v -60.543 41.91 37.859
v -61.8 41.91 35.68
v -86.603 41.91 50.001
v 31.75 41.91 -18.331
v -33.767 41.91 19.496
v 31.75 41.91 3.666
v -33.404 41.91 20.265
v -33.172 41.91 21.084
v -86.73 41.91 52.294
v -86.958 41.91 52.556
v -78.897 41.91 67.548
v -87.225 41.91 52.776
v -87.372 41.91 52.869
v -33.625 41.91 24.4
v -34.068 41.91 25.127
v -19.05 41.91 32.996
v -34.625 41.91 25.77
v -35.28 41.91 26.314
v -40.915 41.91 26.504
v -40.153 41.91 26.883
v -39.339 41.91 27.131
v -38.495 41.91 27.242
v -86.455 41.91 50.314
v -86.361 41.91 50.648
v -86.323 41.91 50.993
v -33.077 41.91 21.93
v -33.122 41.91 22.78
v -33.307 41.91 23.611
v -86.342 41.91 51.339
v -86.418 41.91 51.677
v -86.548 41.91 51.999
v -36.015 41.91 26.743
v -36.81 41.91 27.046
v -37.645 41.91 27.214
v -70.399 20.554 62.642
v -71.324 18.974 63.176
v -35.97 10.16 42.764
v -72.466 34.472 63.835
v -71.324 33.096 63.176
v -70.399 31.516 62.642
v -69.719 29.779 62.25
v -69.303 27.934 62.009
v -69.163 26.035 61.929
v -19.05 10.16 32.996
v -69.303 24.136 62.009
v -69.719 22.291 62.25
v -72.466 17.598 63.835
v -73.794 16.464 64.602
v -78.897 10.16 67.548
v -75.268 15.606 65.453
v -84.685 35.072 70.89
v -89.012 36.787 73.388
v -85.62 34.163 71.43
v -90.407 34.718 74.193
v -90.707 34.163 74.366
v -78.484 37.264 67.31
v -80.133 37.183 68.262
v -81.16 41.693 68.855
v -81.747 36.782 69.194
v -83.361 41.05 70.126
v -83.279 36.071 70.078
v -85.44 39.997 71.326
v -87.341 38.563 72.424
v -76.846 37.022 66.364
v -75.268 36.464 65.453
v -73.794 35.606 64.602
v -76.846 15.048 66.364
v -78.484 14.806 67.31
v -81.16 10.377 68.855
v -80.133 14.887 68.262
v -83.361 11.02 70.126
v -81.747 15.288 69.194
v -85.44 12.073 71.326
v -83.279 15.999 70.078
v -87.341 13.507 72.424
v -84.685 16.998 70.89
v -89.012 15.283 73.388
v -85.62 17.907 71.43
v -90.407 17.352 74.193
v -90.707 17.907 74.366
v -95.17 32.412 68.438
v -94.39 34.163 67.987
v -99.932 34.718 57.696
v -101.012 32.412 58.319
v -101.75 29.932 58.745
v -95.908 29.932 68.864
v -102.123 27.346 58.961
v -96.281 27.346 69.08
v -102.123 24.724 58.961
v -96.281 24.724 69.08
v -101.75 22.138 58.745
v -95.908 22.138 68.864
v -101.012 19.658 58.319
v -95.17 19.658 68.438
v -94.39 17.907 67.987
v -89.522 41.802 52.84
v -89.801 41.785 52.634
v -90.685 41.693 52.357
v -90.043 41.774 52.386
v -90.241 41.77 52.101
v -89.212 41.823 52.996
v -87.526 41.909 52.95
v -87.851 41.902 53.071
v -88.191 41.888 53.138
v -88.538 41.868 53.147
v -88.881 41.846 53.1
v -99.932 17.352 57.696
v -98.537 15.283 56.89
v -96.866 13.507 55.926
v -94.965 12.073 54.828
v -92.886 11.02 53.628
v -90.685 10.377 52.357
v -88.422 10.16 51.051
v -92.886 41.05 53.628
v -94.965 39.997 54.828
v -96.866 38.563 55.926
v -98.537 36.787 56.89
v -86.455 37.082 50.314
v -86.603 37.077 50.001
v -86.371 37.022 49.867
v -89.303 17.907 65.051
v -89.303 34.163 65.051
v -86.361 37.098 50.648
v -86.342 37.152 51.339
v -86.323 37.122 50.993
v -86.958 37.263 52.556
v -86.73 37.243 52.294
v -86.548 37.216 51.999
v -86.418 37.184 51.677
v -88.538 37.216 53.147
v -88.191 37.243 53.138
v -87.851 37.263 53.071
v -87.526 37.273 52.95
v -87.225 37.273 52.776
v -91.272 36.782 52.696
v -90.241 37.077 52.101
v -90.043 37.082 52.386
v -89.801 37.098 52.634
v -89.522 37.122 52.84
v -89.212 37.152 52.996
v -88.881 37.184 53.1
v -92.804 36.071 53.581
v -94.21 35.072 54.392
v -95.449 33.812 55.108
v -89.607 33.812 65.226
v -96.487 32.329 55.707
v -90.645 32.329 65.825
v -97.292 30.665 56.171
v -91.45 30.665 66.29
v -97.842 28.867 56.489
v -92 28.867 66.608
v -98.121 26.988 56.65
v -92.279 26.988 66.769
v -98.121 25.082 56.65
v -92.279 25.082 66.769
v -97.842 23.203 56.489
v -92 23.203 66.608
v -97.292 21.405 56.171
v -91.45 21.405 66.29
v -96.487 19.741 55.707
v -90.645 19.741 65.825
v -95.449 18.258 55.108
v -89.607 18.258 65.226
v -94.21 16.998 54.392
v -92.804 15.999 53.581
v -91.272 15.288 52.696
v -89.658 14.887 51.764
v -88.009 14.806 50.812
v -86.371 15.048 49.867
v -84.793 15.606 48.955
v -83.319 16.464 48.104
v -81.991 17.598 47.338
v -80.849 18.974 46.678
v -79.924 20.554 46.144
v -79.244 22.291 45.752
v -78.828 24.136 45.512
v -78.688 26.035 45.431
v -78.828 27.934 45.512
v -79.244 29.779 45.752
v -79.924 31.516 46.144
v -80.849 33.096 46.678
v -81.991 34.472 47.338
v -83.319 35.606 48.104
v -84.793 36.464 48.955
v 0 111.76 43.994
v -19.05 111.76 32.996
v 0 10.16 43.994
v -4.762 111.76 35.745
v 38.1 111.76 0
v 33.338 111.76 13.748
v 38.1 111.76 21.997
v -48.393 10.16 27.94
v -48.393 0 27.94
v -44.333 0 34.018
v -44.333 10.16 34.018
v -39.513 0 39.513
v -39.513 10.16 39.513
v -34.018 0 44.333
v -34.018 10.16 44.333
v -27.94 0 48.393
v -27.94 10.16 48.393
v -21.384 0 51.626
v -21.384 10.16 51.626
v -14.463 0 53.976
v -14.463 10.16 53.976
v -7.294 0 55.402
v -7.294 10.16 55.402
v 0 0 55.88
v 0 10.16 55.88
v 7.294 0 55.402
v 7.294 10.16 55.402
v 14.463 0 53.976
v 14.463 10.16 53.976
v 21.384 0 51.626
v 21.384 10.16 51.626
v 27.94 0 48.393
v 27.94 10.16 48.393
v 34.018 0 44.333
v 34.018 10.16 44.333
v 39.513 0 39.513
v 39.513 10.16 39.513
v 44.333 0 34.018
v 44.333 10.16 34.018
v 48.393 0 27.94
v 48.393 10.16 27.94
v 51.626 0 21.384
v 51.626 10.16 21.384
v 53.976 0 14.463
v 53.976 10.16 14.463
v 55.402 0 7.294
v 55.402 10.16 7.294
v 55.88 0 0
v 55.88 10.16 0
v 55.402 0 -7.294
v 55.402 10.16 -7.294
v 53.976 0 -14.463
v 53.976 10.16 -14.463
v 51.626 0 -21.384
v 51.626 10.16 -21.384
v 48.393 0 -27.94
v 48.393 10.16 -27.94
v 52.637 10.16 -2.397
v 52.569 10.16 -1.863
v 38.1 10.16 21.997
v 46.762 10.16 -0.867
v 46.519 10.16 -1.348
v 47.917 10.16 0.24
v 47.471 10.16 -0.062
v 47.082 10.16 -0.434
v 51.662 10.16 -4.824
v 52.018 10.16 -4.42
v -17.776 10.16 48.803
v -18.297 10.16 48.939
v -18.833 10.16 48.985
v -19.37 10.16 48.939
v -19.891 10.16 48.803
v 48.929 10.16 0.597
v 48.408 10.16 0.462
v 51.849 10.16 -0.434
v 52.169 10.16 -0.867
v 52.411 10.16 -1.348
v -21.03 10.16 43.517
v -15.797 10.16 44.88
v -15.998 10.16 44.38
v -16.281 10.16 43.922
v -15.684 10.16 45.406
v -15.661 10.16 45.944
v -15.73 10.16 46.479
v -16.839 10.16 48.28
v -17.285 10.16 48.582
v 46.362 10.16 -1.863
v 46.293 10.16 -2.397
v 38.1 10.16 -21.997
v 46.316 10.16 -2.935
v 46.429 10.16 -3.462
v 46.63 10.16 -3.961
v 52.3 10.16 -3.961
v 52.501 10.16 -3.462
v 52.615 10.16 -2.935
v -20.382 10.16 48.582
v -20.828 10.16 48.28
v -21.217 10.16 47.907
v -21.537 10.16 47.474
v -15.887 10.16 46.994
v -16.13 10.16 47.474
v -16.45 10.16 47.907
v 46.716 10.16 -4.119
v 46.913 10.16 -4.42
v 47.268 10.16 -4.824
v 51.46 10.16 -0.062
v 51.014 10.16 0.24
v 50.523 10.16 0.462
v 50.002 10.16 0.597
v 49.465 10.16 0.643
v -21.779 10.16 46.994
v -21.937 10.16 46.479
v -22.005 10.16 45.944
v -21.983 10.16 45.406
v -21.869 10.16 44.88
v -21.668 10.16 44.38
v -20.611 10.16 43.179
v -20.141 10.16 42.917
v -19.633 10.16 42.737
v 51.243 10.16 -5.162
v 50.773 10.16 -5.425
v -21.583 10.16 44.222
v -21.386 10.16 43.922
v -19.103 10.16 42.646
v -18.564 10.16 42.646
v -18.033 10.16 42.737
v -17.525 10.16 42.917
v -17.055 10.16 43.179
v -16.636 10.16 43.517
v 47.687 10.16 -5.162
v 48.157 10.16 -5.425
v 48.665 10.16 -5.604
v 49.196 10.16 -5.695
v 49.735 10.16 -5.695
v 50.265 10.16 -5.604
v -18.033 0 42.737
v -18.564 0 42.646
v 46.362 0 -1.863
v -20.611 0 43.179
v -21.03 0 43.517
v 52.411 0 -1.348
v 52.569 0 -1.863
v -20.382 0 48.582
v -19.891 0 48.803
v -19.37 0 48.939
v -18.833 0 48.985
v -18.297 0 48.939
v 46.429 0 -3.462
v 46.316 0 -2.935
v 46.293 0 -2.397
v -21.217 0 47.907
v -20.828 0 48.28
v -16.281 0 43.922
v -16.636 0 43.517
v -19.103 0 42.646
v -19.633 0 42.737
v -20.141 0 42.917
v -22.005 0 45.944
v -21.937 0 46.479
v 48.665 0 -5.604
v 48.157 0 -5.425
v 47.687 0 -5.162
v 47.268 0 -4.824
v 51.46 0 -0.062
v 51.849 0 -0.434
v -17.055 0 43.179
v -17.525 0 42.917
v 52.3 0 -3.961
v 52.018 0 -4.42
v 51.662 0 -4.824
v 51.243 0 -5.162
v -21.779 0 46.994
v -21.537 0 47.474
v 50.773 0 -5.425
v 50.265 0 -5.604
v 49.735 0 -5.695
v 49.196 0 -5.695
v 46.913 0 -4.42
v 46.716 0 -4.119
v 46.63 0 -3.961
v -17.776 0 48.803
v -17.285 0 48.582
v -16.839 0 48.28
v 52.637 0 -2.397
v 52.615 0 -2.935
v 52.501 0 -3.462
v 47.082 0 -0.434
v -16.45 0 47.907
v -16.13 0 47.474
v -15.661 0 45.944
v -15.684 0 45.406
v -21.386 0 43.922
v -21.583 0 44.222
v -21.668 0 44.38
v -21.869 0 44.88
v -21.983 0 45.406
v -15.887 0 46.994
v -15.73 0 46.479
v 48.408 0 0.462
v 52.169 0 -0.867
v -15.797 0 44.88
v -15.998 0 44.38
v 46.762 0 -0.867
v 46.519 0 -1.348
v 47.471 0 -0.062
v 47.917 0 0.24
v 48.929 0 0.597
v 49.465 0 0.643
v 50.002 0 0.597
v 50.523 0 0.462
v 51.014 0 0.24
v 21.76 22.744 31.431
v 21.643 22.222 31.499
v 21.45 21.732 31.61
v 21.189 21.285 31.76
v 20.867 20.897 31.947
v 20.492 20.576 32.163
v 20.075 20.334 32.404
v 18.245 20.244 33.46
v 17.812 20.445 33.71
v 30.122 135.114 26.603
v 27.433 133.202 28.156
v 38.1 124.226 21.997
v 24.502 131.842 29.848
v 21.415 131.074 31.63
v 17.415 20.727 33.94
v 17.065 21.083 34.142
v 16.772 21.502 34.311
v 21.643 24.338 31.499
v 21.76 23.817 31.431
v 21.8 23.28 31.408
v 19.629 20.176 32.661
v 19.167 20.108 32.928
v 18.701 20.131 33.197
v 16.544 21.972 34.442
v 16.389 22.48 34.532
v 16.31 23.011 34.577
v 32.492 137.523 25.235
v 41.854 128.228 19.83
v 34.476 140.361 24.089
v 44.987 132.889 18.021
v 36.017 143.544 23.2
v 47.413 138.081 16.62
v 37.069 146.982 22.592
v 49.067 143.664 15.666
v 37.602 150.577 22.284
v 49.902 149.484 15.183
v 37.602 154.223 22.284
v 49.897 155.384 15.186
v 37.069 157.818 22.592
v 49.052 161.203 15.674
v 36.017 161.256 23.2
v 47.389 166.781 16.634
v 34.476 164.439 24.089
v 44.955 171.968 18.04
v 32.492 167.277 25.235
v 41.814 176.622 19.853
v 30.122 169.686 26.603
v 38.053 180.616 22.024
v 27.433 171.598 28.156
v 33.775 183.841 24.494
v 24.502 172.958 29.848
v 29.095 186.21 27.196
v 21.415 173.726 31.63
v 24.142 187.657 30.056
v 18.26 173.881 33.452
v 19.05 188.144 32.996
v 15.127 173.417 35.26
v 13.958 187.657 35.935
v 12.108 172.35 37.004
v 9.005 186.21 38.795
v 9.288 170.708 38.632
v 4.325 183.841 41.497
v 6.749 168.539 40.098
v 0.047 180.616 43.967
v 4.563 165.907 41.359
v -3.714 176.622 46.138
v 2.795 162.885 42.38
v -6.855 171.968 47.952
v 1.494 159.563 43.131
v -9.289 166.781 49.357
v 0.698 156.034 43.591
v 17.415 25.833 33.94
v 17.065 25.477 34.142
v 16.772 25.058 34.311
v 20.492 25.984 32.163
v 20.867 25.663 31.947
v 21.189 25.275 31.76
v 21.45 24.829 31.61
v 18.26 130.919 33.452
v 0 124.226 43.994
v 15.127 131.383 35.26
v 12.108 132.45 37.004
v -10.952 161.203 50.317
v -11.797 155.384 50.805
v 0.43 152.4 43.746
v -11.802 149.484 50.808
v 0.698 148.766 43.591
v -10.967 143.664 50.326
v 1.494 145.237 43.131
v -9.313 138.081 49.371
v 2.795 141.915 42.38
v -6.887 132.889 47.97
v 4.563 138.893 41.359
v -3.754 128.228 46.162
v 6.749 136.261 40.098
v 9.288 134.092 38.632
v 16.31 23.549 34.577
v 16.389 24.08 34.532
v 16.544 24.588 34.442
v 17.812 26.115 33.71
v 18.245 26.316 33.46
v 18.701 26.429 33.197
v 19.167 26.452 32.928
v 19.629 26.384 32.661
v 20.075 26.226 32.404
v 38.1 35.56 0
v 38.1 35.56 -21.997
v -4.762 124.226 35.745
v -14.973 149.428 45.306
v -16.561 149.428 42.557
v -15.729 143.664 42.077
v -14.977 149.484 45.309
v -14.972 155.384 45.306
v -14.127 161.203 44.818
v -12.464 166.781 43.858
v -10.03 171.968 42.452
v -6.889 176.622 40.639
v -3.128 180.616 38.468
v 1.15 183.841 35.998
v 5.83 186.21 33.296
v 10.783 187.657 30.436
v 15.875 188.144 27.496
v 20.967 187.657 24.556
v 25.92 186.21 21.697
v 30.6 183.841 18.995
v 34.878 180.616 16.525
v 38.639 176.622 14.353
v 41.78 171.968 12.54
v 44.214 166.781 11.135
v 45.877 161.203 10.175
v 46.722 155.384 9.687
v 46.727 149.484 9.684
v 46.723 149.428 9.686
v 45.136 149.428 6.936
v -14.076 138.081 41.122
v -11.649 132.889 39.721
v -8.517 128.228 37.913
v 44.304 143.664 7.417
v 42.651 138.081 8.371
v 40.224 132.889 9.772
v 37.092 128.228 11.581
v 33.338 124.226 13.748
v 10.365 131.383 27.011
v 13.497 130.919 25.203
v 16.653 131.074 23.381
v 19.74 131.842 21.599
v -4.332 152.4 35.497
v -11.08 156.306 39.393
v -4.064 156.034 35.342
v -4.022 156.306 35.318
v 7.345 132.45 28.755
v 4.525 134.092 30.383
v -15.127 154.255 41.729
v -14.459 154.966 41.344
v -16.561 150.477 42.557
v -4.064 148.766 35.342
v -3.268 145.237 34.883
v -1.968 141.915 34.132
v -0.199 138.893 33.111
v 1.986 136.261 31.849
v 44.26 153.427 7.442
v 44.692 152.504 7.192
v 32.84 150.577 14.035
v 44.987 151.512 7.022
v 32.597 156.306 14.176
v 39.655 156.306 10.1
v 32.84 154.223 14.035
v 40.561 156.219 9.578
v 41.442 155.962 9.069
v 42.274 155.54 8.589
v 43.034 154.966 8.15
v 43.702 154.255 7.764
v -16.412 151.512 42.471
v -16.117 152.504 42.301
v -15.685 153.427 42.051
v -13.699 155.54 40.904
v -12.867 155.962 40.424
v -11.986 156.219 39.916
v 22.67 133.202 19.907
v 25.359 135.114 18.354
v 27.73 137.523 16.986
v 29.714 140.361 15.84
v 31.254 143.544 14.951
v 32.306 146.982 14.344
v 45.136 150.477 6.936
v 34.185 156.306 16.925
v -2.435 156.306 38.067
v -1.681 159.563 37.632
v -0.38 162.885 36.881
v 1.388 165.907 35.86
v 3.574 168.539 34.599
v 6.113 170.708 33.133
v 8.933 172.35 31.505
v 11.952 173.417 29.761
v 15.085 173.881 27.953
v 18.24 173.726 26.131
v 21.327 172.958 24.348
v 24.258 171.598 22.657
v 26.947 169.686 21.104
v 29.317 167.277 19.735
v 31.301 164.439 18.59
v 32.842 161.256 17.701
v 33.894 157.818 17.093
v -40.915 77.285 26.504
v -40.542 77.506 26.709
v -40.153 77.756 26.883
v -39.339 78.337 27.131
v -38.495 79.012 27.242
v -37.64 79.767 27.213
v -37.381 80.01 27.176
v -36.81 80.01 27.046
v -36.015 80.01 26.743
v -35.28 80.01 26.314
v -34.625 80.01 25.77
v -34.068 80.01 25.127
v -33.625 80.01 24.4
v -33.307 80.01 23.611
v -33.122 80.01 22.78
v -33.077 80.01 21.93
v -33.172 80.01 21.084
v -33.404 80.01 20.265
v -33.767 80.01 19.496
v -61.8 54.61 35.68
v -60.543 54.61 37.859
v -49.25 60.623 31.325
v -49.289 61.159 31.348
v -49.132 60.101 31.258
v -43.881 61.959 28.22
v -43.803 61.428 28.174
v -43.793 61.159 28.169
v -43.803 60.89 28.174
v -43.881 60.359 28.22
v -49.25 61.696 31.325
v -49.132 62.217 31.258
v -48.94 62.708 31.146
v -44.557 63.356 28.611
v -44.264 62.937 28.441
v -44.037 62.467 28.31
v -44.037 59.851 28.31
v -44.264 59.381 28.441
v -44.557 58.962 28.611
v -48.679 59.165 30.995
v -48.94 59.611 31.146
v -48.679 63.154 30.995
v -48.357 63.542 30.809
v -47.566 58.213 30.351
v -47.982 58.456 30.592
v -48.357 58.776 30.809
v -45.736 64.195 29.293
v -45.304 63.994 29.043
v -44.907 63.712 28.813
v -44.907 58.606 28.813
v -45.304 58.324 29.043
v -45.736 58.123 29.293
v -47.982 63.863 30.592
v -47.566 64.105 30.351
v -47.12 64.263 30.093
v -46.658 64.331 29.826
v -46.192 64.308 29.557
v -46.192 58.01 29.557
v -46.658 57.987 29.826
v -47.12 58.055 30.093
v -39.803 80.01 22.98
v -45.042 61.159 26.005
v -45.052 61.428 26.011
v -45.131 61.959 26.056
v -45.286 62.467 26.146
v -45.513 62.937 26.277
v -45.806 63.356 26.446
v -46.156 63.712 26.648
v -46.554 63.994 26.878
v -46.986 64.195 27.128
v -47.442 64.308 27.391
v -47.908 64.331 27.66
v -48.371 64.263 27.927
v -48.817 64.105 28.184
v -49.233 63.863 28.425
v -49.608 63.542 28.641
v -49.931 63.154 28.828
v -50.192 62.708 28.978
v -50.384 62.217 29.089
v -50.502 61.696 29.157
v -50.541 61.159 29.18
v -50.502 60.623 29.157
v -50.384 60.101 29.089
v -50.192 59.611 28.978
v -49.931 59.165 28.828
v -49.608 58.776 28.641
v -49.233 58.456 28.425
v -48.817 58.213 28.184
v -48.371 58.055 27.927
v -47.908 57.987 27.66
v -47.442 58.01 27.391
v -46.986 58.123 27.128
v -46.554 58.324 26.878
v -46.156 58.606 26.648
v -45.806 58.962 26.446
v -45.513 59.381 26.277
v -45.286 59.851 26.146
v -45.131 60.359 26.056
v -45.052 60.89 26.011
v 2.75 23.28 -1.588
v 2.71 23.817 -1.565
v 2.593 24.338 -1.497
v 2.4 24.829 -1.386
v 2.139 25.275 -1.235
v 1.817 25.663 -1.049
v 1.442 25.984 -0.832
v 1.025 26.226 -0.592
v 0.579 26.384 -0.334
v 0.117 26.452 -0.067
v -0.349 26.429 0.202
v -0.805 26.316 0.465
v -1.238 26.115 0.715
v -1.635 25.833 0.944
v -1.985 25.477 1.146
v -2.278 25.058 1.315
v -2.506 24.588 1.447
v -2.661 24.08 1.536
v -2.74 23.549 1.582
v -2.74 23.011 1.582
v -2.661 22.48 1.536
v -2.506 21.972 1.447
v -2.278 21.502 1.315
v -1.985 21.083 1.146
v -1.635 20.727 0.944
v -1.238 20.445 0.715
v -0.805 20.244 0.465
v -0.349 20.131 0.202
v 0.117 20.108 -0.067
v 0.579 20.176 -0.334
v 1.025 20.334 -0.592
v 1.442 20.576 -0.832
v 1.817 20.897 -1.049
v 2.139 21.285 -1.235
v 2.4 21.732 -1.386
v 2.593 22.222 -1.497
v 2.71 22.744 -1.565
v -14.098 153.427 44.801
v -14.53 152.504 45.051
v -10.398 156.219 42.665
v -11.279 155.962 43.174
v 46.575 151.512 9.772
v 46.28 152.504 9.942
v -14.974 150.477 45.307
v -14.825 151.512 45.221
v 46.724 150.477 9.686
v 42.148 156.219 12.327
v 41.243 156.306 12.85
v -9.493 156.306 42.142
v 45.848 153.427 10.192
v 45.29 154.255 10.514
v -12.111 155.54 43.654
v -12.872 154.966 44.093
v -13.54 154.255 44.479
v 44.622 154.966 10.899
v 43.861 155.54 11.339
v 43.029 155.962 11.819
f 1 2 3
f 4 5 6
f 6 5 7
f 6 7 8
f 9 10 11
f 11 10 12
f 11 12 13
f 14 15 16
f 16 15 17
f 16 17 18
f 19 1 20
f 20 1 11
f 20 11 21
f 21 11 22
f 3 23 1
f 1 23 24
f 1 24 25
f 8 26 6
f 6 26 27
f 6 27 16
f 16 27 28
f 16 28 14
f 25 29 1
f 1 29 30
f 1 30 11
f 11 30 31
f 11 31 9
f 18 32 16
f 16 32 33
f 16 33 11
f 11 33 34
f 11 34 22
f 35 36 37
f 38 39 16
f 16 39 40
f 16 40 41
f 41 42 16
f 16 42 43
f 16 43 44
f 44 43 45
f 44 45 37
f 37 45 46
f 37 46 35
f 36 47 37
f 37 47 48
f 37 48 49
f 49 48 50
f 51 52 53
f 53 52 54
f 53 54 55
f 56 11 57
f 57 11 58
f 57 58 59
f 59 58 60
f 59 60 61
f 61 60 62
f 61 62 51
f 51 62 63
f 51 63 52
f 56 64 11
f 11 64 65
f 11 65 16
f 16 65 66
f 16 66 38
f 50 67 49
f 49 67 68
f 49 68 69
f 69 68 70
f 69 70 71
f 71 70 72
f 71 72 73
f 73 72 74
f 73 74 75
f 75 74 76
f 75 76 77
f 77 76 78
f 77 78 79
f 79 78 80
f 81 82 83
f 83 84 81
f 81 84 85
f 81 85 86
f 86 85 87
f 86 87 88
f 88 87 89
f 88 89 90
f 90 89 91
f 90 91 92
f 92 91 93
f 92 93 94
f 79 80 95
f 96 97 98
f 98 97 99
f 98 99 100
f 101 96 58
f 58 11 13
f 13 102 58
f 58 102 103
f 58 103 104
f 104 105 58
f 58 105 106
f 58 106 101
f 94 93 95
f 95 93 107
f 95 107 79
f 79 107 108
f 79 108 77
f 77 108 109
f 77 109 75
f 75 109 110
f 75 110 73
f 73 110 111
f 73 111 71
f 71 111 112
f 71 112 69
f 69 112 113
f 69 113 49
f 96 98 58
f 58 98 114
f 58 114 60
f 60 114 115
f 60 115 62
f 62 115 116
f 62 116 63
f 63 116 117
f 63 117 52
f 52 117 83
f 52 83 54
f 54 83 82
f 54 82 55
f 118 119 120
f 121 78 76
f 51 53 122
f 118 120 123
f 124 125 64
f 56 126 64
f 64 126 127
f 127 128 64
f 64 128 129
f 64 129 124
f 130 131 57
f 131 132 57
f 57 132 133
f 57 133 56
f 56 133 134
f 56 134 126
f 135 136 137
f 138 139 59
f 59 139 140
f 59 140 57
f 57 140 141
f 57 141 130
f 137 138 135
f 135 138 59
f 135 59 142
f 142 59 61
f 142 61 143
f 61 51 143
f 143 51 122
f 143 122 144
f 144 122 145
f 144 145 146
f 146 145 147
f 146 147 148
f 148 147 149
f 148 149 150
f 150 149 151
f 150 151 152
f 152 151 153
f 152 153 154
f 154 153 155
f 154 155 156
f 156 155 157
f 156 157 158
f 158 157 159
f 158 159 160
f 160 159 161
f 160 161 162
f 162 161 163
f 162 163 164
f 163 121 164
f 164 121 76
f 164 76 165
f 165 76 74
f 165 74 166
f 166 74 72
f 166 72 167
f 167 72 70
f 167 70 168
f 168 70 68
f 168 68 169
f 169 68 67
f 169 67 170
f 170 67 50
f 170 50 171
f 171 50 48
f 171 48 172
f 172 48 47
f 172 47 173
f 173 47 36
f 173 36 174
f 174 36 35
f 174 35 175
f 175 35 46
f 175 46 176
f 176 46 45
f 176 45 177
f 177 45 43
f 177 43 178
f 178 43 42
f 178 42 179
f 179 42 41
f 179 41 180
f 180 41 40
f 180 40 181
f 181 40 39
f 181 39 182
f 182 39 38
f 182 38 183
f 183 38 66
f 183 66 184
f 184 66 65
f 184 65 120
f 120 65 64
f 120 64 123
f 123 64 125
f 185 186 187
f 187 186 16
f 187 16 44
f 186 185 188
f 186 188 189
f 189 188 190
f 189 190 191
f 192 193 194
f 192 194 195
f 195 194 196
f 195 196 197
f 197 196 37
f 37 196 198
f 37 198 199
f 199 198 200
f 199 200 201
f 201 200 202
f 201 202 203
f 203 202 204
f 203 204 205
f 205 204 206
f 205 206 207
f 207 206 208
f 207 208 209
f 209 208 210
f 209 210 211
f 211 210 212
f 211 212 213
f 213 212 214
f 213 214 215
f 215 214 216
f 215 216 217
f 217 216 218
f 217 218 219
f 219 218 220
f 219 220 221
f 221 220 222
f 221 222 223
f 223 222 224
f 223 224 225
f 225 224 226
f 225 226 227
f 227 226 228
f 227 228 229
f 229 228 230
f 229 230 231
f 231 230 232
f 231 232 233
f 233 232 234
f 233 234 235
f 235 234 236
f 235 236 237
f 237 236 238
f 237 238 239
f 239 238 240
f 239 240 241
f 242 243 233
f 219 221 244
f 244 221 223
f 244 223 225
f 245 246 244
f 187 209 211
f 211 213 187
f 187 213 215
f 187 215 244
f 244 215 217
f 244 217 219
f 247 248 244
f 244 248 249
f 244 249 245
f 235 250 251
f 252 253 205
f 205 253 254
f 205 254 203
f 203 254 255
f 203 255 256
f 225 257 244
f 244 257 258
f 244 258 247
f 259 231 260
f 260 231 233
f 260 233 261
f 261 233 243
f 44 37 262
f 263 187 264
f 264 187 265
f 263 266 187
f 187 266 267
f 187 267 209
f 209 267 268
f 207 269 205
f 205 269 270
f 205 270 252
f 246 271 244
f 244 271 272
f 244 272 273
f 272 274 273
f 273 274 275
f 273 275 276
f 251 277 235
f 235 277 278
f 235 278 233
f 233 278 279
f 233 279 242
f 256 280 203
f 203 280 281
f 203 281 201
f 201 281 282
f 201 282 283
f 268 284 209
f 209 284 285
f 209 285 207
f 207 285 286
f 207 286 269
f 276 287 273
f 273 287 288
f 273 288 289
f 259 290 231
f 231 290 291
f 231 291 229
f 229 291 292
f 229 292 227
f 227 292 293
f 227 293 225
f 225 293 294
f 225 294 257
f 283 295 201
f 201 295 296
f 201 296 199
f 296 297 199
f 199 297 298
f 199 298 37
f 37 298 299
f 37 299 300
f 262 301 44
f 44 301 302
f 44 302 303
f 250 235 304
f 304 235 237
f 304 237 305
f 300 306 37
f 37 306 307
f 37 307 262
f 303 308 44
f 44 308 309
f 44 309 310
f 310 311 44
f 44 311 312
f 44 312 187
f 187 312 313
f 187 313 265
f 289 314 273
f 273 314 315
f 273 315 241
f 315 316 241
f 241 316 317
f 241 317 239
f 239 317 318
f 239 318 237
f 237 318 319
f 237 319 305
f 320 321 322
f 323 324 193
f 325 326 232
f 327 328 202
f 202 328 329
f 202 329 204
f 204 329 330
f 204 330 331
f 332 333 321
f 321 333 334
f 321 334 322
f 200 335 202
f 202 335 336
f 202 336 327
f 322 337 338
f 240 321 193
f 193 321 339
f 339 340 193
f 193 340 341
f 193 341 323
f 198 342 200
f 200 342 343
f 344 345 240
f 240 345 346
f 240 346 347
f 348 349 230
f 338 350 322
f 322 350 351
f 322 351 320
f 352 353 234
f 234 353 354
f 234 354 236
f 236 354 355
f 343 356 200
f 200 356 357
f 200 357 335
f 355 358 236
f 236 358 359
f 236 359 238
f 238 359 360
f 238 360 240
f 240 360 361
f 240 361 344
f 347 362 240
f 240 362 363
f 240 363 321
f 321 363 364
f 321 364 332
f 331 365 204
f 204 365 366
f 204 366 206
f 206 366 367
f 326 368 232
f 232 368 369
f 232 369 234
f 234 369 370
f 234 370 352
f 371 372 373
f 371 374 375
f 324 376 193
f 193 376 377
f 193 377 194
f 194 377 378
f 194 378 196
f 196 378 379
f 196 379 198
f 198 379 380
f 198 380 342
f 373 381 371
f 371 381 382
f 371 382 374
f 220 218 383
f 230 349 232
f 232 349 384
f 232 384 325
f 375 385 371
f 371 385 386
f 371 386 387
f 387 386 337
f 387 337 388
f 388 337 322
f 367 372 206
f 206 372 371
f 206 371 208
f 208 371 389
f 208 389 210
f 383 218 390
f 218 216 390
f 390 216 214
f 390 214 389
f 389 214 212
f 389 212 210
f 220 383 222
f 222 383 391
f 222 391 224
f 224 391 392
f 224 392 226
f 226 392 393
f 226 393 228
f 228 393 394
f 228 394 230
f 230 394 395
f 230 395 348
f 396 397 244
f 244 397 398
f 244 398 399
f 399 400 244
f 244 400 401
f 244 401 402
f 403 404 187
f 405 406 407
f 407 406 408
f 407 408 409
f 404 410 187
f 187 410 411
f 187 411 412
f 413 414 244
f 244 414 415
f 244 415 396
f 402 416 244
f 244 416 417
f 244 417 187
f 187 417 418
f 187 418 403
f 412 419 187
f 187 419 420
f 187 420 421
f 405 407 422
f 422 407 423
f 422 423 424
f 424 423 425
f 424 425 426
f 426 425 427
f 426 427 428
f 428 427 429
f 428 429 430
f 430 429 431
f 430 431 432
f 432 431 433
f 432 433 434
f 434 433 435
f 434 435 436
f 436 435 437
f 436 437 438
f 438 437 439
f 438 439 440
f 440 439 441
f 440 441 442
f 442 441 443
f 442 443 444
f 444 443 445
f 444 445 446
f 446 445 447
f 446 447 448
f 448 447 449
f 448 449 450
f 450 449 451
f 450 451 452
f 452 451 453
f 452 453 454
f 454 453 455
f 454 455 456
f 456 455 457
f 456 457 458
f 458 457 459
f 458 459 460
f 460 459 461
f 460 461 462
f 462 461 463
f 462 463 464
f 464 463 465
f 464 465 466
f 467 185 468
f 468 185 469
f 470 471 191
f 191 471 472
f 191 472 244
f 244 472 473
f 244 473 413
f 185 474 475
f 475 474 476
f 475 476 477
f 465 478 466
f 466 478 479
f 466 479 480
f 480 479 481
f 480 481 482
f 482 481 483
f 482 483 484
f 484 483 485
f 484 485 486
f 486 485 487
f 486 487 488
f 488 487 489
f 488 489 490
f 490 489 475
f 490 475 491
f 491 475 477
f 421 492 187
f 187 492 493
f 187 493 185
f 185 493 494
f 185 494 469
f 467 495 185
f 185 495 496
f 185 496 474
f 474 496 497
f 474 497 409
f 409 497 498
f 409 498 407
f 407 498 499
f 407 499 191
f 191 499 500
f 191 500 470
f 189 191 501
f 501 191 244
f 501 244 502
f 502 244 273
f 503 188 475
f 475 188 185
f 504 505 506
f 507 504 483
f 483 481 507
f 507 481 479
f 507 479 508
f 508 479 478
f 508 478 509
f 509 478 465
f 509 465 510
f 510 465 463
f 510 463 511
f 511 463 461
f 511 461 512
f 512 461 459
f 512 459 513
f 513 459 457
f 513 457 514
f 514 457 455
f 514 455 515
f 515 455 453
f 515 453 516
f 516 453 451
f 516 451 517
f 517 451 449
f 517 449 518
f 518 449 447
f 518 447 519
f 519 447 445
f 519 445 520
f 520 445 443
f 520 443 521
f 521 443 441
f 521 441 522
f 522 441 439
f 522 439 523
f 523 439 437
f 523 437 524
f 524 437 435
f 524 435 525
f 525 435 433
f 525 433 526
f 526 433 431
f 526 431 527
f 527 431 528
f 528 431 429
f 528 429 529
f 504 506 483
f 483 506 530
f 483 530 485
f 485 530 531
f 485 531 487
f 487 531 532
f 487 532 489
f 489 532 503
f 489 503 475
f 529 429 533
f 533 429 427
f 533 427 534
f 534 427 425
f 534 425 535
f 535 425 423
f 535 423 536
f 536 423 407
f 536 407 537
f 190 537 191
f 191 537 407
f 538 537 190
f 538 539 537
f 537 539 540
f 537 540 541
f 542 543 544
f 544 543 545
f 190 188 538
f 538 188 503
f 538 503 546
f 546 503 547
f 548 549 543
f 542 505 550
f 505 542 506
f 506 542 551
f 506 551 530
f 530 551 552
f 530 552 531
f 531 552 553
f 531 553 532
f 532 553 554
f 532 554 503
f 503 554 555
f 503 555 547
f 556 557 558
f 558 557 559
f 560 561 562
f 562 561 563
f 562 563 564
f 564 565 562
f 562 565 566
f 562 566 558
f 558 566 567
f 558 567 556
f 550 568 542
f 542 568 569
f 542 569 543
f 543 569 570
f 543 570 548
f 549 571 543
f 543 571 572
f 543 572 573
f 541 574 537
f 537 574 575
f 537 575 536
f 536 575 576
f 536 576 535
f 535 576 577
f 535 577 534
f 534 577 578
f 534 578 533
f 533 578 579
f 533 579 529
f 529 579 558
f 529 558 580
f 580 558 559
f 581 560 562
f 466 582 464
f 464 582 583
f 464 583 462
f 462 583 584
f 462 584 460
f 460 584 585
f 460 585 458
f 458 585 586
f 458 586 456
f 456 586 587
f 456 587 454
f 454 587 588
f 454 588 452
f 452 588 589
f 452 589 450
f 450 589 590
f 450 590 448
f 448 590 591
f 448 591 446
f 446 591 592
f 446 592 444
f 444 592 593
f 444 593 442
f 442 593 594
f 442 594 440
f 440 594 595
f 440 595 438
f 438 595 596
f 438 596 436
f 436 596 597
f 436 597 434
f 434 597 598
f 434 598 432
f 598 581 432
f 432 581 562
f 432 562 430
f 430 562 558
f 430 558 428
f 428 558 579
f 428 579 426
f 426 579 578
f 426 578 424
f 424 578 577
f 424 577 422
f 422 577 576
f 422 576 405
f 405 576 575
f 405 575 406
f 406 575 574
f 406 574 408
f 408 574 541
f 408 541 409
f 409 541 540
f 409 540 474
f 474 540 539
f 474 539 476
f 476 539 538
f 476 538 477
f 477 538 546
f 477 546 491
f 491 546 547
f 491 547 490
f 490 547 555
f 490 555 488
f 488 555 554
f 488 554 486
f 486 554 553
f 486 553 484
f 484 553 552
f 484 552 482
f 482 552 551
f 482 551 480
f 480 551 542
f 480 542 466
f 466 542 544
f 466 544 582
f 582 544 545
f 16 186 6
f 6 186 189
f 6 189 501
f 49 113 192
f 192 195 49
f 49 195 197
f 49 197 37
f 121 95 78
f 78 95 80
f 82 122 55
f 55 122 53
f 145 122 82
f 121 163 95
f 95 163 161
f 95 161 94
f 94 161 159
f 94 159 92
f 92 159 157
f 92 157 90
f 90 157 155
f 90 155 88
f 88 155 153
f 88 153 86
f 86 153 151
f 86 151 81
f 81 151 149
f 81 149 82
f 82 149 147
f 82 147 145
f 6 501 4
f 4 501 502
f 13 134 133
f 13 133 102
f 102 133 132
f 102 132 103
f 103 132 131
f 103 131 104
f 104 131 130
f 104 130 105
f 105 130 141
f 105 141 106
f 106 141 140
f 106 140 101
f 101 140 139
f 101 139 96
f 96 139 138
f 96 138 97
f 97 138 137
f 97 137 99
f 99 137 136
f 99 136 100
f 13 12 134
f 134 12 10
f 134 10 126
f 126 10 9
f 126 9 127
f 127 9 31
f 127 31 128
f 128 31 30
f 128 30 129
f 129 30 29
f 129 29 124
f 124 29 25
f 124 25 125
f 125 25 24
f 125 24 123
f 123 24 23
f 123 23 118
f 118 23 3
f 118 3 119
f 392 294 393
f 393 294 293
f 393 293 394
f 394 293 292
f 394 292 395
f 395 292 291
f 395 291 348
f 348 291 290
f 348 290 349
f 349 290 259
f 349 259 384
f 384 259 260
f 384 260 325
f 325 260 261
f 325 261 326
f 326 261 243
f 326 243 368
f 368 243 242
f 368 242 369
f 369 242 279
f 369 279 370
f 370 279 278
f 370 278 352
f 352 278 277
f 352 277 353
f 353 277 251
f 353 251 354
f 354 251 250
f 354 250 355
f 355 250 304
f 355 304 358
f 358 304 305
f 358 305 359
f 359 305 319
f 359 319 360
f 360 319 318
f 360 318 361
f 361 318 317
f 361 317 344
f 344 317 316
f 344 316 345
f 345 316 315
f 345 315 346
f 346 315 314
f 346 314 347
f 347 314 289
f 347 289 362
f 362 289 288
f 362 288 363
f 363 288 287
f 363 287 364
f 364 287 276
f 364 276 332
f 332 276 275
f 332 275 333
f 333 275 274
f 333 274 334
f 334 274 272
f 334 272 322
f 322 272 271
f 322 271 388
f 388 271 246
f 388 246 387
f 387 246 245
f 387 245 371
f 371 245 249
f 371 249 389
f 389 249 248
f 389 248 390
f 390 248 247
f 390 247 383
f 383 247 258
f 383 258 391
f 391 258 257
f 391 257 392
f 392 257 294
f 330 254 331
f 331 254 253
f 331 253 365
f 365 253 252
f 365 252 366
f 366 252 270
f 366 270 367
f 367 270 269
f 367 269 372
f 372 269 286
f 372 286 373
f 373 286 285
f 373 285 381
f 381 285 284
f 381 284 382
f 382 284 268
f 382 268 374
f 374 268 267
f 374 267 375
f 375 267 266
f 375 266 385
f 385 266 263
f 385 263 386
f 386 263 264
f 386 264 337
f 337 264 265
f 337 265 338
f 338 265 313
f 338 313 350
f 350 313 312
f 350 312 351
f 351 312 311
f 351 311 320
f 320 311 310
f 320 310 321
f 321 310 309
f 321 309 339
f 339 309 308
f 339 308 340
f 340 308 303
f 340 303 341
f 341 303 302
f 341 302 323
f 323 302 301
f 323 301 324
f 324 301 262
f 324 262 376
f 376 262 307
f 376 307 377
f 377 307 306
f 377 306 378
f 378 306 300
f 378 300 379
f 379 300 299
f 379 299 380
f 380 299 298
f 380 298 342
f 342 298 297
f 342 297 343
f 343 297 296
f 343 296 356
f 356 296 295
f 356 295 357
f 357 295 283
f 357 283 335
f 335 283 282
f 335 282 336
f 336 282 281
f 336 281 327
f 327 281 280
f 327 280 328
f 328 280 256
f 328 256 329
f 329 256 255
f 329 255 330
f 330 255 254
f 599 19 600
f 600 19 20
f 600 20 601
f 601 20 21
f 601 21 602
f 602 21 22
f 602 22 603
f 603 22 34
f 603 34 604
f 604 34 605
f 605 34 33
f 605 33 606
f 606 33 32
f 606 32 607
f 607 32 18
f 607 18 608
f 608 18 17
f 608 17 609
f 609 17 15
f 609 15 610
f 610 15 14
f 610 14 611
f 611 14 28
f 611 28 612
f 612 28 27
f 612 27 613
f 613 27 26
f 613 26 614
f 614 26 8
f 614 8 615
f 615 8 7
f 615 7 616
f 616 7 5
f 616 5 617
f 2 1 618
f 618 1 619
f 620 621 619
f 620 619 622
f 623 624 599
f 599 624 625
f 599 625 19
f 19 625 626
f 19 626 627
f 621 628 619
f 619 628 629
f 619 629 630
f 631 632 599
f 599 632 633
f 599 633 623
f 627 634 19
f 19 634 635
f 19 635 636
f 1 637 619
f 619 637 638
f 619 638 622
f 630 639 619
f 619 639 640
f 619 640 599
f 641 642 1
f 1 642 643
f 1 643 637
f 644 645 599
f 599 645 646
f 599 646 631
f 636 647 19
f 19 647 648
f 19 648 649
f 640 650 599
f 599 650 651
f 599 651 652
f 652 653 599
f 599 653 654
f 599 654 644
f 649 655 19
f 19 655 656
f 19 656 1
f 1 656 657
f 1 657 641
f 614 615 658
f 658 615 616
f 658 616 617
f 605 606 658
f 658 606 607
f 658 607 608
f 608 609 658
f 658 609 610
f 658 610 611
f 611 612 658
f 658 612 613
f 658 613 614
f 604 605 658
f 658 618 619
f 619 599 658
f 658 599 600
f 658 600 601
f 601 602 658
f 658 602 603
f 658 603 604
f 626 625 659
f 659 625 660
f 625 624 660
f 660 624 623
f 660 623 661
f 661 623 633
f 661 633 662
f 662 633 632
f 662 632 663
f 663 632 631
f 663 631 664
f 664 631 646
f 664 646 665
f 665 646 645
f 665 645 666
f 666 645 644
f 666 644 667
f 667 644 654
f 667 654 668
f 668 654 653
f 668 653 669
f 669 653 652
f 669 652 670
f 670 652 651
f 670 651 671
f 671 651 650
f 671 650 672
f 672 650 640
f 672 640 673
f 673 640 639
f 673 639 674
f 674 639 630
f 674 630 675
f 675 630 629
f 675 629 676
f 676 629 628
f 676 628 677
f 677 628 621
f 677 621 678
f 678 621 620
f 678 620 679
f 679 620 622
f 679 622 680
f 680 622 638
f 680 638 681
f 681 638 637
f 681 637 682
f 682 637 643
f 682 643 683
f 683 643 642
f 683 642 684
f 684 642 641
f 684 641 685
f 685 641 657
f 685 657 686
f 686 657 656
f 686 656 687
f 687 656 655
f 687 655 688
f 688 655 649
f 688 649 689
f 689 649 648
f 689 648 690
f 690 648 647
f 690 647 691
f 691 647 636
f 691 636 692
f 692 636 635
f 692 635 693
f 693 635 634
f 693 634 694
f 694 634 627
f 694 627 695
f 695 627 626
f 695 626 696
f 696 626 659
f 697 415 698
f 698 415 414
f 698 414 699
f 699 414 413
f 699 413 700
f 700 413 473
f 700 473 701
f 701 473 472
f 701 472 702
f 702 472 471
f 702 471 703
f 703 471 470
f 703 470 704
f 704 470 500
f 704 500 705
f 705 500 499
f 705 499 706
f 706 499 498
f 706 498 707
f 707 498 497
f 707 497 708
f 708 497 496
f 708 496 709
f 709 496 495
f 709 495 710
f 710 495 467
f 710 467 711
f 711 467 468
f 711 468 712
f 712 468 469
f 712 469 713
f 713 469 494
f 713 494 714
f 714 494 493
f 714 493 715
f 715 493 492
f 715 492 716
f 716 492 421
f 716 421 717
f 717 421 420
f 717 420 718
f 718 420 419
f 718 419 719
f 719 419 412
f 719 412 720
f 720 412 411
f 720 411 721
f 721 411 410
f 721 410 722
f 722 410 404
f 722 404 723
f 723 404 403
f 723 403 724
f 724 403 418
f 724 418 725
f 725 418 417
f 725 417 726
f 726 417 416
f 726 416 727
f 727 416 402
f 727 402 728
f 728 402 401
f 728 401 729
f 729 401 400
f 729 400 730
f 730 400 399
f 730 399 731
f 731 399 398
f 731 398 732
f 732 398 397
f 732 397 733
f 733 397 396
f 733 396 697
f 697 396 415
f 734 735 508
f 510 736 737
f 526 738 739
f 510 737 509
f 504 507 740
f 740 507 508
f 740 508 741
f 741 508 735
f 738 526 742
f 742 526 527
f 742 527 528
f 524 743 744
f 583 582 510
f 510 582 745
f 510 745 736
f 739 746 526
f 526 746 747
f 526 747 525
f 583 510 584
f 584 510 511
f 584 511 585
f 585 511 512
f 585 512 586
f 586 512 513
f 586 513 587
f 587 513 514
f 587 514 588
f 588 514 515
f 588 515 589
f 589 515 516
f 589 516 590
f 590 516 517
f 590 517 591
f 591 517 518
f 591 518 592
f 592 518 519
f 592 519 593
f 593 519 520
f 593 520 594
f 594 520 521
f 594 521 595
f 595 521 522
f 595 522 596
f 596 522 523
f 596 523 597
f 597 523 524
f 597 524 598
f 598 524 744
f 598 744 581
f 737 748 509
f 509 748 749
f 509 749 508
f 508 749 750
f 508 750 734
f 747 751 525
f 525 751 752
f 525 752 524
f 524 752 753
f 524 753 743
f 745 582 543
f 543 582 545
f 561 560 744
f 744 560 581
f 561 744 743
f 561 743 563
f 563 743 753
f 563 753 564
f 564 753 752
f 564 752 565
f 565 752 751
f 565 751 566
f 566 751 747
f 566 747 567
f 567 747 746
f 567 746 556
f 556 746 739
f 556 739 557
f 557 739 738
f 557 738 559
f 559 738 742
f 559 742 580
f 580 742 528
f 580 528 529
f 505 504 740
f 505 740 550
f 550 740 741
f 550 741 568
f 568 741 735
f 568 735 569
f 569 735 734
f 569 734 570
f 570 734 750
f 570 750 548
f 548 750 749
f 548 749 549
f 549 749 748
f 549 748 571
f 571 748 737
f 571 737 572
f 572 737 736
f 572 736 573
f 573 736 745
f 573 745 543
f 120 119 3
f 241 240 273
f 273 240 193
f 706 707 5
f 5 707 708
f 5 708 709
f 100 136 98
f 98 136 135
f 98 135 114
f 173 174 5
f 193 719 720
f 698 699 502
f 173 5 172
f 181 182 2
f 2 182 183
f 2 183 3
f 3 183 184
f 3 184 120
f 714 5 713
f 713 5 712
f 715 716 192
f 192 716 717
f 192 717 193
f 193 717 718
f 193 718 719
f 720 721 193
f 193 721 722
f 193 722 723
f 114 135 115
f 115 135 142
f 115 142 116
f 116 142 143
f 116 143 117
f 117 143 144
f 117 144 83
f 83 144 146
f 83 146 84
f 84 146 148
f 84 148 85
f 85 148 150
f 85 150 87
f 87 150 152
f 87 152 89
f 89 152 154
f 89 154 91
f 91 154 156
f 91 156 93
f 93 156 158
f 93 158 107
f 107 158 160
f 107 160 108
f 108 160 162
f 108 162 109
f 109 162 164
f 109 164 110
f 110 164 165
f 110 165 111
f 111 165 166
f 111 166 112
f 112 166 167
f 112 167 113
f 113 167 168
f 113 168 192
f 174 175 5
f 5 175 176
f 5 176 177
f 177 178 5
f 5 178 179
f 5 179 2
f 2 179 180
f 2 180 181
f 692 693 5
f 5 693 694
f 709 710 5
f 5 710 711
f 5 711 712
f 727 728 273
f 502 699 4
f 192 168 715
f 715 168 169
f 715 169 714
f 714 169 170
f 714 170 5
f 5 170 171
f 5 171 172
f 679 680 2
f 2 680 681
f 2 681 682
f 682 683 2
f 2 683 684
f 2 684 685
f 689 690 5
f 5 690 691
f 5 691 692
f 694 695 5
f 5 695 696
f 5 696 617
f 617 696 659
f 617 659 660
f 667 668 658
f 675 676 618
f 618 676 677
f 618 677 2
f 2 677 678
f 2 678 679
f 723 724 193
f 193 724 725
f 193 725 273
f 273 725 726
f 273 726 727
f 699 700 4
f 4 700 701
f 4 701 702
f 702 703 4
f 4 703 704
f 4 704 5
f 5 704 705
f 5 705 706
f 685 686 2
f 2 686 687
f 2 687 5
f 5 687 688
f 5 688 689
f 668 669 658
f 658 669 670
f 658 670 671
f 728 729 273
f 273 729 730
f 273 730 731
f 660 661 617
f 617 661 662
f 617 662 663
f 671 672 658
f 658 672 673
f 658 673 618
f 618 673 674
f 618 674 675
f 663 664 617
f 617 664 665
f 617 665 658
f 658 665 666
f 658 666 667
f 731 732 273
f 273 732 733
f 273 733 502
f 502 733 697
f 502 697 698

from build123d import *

# Parameters (mm, degrees)
SKETCH4_R            = 55.88
BOSS_EXTRUDE2_DEPTH  = 10.16
BOSS_EXTRUDE4_DEPTH  = 101.6
BOSS_EXTRUDE5_DEPTH  = 9.525
BOSS_EXTRUDE6_START  = -9.525
BOSS_EXTRUDE6_DEPTH  = 9.525
CUT_EXTRUDE4_REACH   = 223.16
SKETCH12_R           = 21.5
SKETCH13_W           = 38.1
SKETCH13_H           = 69.85
CUT_EXTRUDE5_DEPTH   = 76.2
BOSS_EXTRUDE10_DEPTH = 19.05
SKETCH28_R           = 11.2395
CUT_EXTRUDE9_DEPTH   = 38.1
CUT_EXTRUDE10_DEPTH  = 7.366
CHAMFER1_SIZE        = 6.35
SKETCH30_R           = 2.1
CUT_EXTRUDE11_DEPTH  = 7.366
SKETCH31_R           = 3.175
CUT_EXTRUDE12_DEPTH  = 223.900333216
BOSS_EXTRUDE11_DEPTH = 38.1
CHAMFER2_SIZE        = 25.4
CUT_EXTRUDE13_REACH  = 233.204
SKETCH34_R           = 3.175
SKETCH35_R           = 3.175
CUT_EXTRUDE14_DEPTH  = 246.746626534
SKETCH36_W           = 63.5
SKETCH36_H           = 36.709955102
CUT_EXTRUDE15_DEPTH  = 63.5
FILLET1_R            = 6.35
SKETCH37_W           = 210.742334846
SKETCH37_H           = 201.224939079
CUT_EXTRUDE16_DEPTH  = 232.093968202


with BuildPart() as part:
    # Sketch4 → Boss-Extrude2 (new body)
    with BuildSketch(Plane(origin=(0, 0, 0), x_dir=(1, 0, 0), z_dir=(0, 1, 0))):
        with Locations(Location((0, 0, 0), (0, 0, 270))):
            Circle(SKETCH4_R)
    extrude(amount=BOSS_EXTRUDE2_DEPTH)

    # Sketch8 → Boss-Extrude4 (add)
    with BuildSketch(Plane(origin=(0, 10.16, 0), x_dir=(1, 0, 0), z_dir=(0, 1, 0))):
        Polygon((0, 43.994090512), (-38.1, 21.997045256), (-38.1, -21.997045256), (0, -43.994090512), (38.1, -21.997045256), (38.1, 21.997045256), align=None)
    extrude(amount=BOSS_EXTRUDE4_DEPTH)

    # Sketch9 → Boss-Extrude5 (add)
    with BuildSketch(Plane(origin=(-19.05, 0, -32.995567884), x_dir=(-0.8660254037844386, 0, 0.5000000000000003), z_dir=(-0.5000000000000002, 0, -0.8660254037844385))):
        with BuildLine():
            Line((21.997045256, 111.76), (-21.997045256, 111.76))
            Line((-21.997045256, 111.76), (-21.997045256, 124.225996336))
            ThreePointArc((-21.997045256, 124.225996336), (0, 188.144153123), (21.997045256, 124.225996336))
            Line((21.997045256, 124.225996336), (21.997045256, 111.76))
        make_face()
    extrude(amount=-BOSS_EXTRUDE5_DEPTH)

    # Sketch10 → Boss-Extrude6 (add)
    with BuildSketch(Plane(origin=(19.05, 0, 32.995567884), x_dir=(0.8660254037844386, 0, -0.5000000000000001), z_dir=(0.5000000000000001, 0, 0.8660254037844386)).offset(BOSS_EXTRUDE6_START)):
        with BuildLine():
            Line((-21.997045256, 111.76), (21.997045256, 111.76))
            Line((21.997045256, 111.76), (21.997045256, 124.225996336))
            ThreePointArc((21.997045256, 124.225996336), (0, 188.144153123), (-21.997045256, 124.225996336))
            Line((-21.997045256, 124.225996336), (-21.997045256, 111.76))
        make_face()
    extrude(amount=BOSS_EXTRUDE6_DEPTH)

    # Cut-Extrude4: up to this face of the body (flat: up to its plane)
    cut_extrude4_end = Plane(part.part.faces().sort_by_distance((19.05, 104.643172711, 32.995567884))[0])
    # Sketch12 → Cut-Extrude4 (cut, up to the picked face)
    with BuildSketch(Plane(origin=(-19.05, 0, -32.995567884), x_dir=(-0.8660254037844386, 0, 0.5000000000000003), z_dir=(-0.5000000000000002, 0, -0.8660254037844385)), mode=Mode.PRIVATE) as cut_extrude4_sk1:
        with Locations((0, 152.4)):
            Circle(SKETCH12_R)
    cut_extrude4_tool1 = split(extrude(cut_extrude4_sk1.sketch, amount=-CUT_EXTRUDE4_REACH, mode=Mode.PRIVATE), bisect_by=cut_extrude4_end, keep=Keep.BOTH, mode=Mode.PRIVATE)
    add(cut_extrude4_tool1.solids().sort_by(Axis((-19.05, 152.4, -32.995568), (0.5000000000000002, 0, 0.8660254037844385)))[0], mode=Mode.SUBTRACT)

    # Sketch13 → Cut-Extrude5 (cut, symmetric)
    with BuildSketch(Plane(origin=(-19.05, 0, 10.998522628), x_dir=(0.5000000000000002, 0, 0.8660254037844386), z_dir=(-0.8660254037844385, 0, 0.5000000000000001))):
        with Locations((0, 76.835)):
            Rectangle(SKETCH13_W, SKETCH13_H)
    extrude(amount=CUT_EXTRUDE5_DEPTH, both=True, mode=Mode.SUBTRACT)

    # Sketch22 → Boss-Extrude10 (add, symmetric)
    with BuildSketch(Plane(origin=(0, 0, 0), x_dir=(-0.8660254037844386, 0, 0.5000000000000001), z_dir=(-0.5000000000000001, 0, -0.8660254037844386))):
        with BuildLine():
            Line((43.994090512, 41.91), (102.10102108, 41.91))
            ThreePointArc((102.10102108, 41.91), (117.97602108, 26.035), (102.10102108, 10.16))
            Line((102.10102108, 10.16), (43.994090512, 10.16))
            Line((43.994090512, 10.16), (21.997045256, 10.16))
            Line((21.997045256, 10.16), (21.997045256, 41.91))
            Line((21.997045256, 41.91), (43.994090512, 41.91))
        make_face()
    extrude(amount=BOSS_EXTRUDE10_DEPTH, both=True)

    # Sketch28 → Cut-Extrude9 (cut)
    with BuildSketch(Plane(origin=(9.525, 0, 16.497783942), x_dir=(0.8660254037844386, 0, -0.5000000000000001), z_dir=(0.5000000000000001, 0, 0.8660254037844386))):
        with Locations((-102.10102108, 26.035)):
            Circle(SKETCH28_R)
    extrude(amount=-CUT_EXTRUDE9_DEPTH, mode=Mode.SUBTRACT)

    # Sketch29 → Cut-Extrude10 (cut)
    with BuildSketch(Plane(origin=(9.525, 0, 16.497783942), x_dir=(0.8660254037844386, 0, -0.5000000000000001), z_dir=(0.5000000000000001, 0, 0.8660254037844386))):
        with BuildLine():
            Line((-115.737415068, 17.907), (-109.863879848, 17.907))
            ThreePointArc((-109.863879848, 17.907), (-113.34052108, 26.035), (-109.863879848, 34.163))
            Line((-109.863879848, 34.163), (-115.737415068, 34.163))
            ThreePointArc((-115.737415068, 34.163), (-117.97602108, 26.035), (-115.737415068, 17.907))
        make_face()
    extrude(amount=-CUT_EXTRUDE10_DEPTH, mode=Mode.SUBTRACT)

    # Chamfer1
    chamfer1_edges = [part.edges().sort_by_distance(p)[0] for p in [
        (38.1, 41.91, -10.998522628),
        (28.575, 41.91, -27.49630657),
    ]]
    chamfer(chamfer1_edges, length=CHAMFER1_SIZE)

    # Sketch30 → Cut-Extrude11 (cut)
    with BuildSketch(Plane(origin=(0, 41.91, 0), x_dir=(1, 0, 0), z_dir=(0, 1, 0))):
        with Locations(Location((-88.422078008, -51.05051054, 0), (0, 0, 270))):
            Circle(SKETCH30_R)
    extrude(amount=-CUT_EXTRUDE11_DEPTH, mode=Mode.SUBTRACT)

    # Sketch31 → Cut-Extrude12 (cut, through all)
    with BuildSketch(Plane(origin=(0, 10.16, 0), x_dir=(1, 0, 0), z_dir=(0, 1, 0))):
        with Locations(Location((-49.089000823, 6.594762938, 0), (0, 0, 270))):
            Circle(SKETCH31_R)
        with Locations(Location((26.925278647, 41.57222955, 0), (0, 0, 270))):
            Circle(SKETCH31_R)
    cut_extrude12 = extrude(amount=-CUT_EXTRUDE12_DEPTH, mode=Mode.SUBTRACT)

    # Mirror1: Cut-Extrude12 across plane
    add(cut_extrude12.mirror(Plane(origin=(0, 0, 0), x_dir=(-0.8660254037844386, 0, 0.5000000000000001), z_dir=(-0.5000000000000001, 0, -0.8660254037844386))), mode=Mode.SUBTRACT)

    # Sketch33 → Boss-Extrude11 (add)
    with BuildSketch(Plane(origin=(0, 41.91, 0), x_dir=(1, 0, 0), z_dir=(0, 1, 0))):
        with BuildLine():
            Line((-43.411916389, -22.079834386), (-63.092428819, -33.442383535))
            Line((-63.092428819, -33.442383535), (-61.800298466, -35.680418955))
            Line((-61.800298466, -35.680418955), (-60.542722832, -37.858603849))
            Line((-60.542722832, -37.858603849), (-40.91541904, -26.504074545))
            ThreePointArc((-40.91541904, -26.504074545), (-33.742060338, -19.539834386), (-43.411916389, -22.079834386))
        make_face()
    extrude(amount=BOSS_EXTRUDE11_DEPTH)

    # Chamfer2
    chamfer2_edges = [part.edges().sort_by_distance(p)[0] for p in [
        (-61.817575825, 80.01, 35.650493692),
    ]]
    chamfer(chamfer2_edges, length=CHAMFER2_SIZE)

    # Cut-Extrude13: up to this plane
    cut_extrude13_end = Plane(origin=(-60.542722832, 80.01, 37.858603849), z_dir=(-0.500750644235671, 0, -0.8655915851587056))
    # Sketch34 → Cut-Extrude13 (cut, up to the surface)
    with BuildSketch(Plane(origin=(-1.292130352, 0, -2.23803542), x_dir=(-0.8660254037844386, 0, 0.5000000000000003), z_dir=(-0.5000000000000002, 0, -0.8660254037844385)), mode=Mode.PRIVATE) as cut_extrude13_sk1:
        with Locations((55.184849848, 61.159110234)):
            Circle(SKETCH34_R)
    cut_extrude13_tool1 = split(extrude(cut_extrude13_sk1.sketch, amount=-CUT_EXTRUDE13_REACH, mode=Mode.PRIVATE), bisect_by=cut_extrude13_end, keep=Keep.BOTH, mode=Mode.PRIVATE)
    add(cut_extrude13_tool1.solids().sort_by_distance((-49.083612, 61.15911, 25.35439))[0], mode=Mode.SUBTRACT)

    # Sketch35 → Cut-Extrude14 (cut, through all)
    with BuildSketch(Plane(origin=(19.05, 0, 32.995567884), x_dir=(0.8660254037844386, 0, -0.5000000000000001), z_dir=(0.5000000000000001, 0, 0.8660254037844386))):
        with Locations((0, 23.280078313)):
            Circle(SKETCH35_R)
    extrude(amount=-CUT_EXTRUDE14_DEPTH, mode=Mode.SUBTRACT)

    # Sketch36 → Cut-Extrude15 (cut, symmetric)
    with BuildSketch(Plane(origin=(-19.05, 0, 10.998522628), x_dir=(0.5000000000000004, 0, 0.8660254037844384), z_dir=(-0.8660254037844384, 0, 0.5000000000000004))):
        with Locations((0, 174.660846527)):
            Rectangle(SKETCH36_W, SKETCH36_H)
    extrude(amount=CUT_EXTRUDE15_DEPTH, both=True, mode=Mode.SUBTRACT)

    # Fillet1
    # the kernel refuses this fillet: 6.35 mm, written as the material it takes off along each edge
    with BuildSketch(Plane(origin=(12.272597523, 156.305868976, -21.027711652), x_dir=(0.04103819462533737, -0.9988766133891899, -0.023693412713994805), z_dir=(-0.5000000000000003, 0, -0.8660254037844386))) as fillet1_piece_1:
        with BuildLine():
            CenterArc((6.655634068, -6.291985478), FILLET1_R, 97.750867839, 84.965214409)
            Line((0.312767573, -6.592891819), (0, 0))
            ThreePointArc((0, 0), (2.899617679, -0.196427123), (5.799235358, 0))
        make_face()
    extrude(amount=19.675766287, mode=Mode.SUBTRACT)
    with BuildSketch(Plane(origin=(-24.346831236, 156.305868976, 0.114525399), x_dir=(-0.04103819462533767, -0.9988766133891899, 0.023693412713994975), z_dir=(-0.5000000000000003, 0, -0.8660254037844386))) as fillet1_piece_2:
        with BuildLine():
            CenterArc((6.655634068, 6.291985478), FILLET1_R, 177.283917752, 84.965214409)
            Line((0.312767573, 6.592891819), (0, 0))
            ThreePointArc((0, 0), (2.899617679, 0.196427123), (5.799235358, 0))
        make_face()
    extrude(amount=19.675766287, mode=Mode.SUBTRACT)
    with BuildSketch(Plane(origin=(-14.894977291, 156.305868976, 45.261361242), x_dir=(-0.011364190914464473, -0.999913899736612, 0.0065611186835884), z_dir=(-0.5000000000000002, 0, -0.8660254037844386)), Plane(origin=(-36.459231913, 156.305868976, 7.91097661), x_dir=(-0.011364190914463116, -0.999913899736612, 0.0065611186835876165), z_dir=(-0.5000000000000002, 0, -0.8660254037844386))) as fillet1_piece_3:
        with BuildLine():
            CenterArc((6.26760006, -6.320536654), FILLET1_R, 84.478464497, 94.769665105)
            Line((-0.081853204, -6.237210446), (0, 0))
            ThreePointArc((0, 0), (3.439298151, 0.165849191), (6.878596303, 0))
        make_face()
    extrude(amount=20.371490756, mode=Mode.SUBTRACT)
    with BuildSketch(Plane(origin=(25.080722669, 156.305868976, -27.619132734), x_dir=(0.011364190914465366, -0.999913899736612, -0.00656111868358885), z_dir=(-0.5000000000000002, 0, -0.8660254037844386)), Plane(origin=(46.644977291, 156.305868976, 9.731251898), x_dir=(0.011364190914466365, -0.999913899736612, -0.006561118683589426), z_dir=(-0.5000000000000002, 0, -0.8660254037844386))) as fillet1_piece_4:
        with BuildLine():
            CenterArc((6.26760006, 6.320536654), FILLET1_R, 180.751870398, 94.769665105)
            Line((-0.081853204, 6.237210446), (0, 0))
            ThreePointArc((0, 0), (3.439298151, -0.165849191), (6.878596303, 0))
        make_face()
    extrude(amount=20.371490756, mode=Mode.SUBTRACT)

    # Sketch37 → Cut-Extrude16 (cut, through all)
    with BuildSketch(Plane(origin=(0, 0, 0), x_dir=(-0.8660254037844386, 0, 0.5000000000000001), z_dir=(-0.5000000000000001, 0, -0.8660254037844386))):
        with Locations((30.487295463, 97.29801522)):
            Rectangle(SKETCH37_W, SKETCH37_H)
    extrude(amount=CUT_EXTRUDE16_DEPTH, mode=Mode.SUBTRACT)


solid = part.part
